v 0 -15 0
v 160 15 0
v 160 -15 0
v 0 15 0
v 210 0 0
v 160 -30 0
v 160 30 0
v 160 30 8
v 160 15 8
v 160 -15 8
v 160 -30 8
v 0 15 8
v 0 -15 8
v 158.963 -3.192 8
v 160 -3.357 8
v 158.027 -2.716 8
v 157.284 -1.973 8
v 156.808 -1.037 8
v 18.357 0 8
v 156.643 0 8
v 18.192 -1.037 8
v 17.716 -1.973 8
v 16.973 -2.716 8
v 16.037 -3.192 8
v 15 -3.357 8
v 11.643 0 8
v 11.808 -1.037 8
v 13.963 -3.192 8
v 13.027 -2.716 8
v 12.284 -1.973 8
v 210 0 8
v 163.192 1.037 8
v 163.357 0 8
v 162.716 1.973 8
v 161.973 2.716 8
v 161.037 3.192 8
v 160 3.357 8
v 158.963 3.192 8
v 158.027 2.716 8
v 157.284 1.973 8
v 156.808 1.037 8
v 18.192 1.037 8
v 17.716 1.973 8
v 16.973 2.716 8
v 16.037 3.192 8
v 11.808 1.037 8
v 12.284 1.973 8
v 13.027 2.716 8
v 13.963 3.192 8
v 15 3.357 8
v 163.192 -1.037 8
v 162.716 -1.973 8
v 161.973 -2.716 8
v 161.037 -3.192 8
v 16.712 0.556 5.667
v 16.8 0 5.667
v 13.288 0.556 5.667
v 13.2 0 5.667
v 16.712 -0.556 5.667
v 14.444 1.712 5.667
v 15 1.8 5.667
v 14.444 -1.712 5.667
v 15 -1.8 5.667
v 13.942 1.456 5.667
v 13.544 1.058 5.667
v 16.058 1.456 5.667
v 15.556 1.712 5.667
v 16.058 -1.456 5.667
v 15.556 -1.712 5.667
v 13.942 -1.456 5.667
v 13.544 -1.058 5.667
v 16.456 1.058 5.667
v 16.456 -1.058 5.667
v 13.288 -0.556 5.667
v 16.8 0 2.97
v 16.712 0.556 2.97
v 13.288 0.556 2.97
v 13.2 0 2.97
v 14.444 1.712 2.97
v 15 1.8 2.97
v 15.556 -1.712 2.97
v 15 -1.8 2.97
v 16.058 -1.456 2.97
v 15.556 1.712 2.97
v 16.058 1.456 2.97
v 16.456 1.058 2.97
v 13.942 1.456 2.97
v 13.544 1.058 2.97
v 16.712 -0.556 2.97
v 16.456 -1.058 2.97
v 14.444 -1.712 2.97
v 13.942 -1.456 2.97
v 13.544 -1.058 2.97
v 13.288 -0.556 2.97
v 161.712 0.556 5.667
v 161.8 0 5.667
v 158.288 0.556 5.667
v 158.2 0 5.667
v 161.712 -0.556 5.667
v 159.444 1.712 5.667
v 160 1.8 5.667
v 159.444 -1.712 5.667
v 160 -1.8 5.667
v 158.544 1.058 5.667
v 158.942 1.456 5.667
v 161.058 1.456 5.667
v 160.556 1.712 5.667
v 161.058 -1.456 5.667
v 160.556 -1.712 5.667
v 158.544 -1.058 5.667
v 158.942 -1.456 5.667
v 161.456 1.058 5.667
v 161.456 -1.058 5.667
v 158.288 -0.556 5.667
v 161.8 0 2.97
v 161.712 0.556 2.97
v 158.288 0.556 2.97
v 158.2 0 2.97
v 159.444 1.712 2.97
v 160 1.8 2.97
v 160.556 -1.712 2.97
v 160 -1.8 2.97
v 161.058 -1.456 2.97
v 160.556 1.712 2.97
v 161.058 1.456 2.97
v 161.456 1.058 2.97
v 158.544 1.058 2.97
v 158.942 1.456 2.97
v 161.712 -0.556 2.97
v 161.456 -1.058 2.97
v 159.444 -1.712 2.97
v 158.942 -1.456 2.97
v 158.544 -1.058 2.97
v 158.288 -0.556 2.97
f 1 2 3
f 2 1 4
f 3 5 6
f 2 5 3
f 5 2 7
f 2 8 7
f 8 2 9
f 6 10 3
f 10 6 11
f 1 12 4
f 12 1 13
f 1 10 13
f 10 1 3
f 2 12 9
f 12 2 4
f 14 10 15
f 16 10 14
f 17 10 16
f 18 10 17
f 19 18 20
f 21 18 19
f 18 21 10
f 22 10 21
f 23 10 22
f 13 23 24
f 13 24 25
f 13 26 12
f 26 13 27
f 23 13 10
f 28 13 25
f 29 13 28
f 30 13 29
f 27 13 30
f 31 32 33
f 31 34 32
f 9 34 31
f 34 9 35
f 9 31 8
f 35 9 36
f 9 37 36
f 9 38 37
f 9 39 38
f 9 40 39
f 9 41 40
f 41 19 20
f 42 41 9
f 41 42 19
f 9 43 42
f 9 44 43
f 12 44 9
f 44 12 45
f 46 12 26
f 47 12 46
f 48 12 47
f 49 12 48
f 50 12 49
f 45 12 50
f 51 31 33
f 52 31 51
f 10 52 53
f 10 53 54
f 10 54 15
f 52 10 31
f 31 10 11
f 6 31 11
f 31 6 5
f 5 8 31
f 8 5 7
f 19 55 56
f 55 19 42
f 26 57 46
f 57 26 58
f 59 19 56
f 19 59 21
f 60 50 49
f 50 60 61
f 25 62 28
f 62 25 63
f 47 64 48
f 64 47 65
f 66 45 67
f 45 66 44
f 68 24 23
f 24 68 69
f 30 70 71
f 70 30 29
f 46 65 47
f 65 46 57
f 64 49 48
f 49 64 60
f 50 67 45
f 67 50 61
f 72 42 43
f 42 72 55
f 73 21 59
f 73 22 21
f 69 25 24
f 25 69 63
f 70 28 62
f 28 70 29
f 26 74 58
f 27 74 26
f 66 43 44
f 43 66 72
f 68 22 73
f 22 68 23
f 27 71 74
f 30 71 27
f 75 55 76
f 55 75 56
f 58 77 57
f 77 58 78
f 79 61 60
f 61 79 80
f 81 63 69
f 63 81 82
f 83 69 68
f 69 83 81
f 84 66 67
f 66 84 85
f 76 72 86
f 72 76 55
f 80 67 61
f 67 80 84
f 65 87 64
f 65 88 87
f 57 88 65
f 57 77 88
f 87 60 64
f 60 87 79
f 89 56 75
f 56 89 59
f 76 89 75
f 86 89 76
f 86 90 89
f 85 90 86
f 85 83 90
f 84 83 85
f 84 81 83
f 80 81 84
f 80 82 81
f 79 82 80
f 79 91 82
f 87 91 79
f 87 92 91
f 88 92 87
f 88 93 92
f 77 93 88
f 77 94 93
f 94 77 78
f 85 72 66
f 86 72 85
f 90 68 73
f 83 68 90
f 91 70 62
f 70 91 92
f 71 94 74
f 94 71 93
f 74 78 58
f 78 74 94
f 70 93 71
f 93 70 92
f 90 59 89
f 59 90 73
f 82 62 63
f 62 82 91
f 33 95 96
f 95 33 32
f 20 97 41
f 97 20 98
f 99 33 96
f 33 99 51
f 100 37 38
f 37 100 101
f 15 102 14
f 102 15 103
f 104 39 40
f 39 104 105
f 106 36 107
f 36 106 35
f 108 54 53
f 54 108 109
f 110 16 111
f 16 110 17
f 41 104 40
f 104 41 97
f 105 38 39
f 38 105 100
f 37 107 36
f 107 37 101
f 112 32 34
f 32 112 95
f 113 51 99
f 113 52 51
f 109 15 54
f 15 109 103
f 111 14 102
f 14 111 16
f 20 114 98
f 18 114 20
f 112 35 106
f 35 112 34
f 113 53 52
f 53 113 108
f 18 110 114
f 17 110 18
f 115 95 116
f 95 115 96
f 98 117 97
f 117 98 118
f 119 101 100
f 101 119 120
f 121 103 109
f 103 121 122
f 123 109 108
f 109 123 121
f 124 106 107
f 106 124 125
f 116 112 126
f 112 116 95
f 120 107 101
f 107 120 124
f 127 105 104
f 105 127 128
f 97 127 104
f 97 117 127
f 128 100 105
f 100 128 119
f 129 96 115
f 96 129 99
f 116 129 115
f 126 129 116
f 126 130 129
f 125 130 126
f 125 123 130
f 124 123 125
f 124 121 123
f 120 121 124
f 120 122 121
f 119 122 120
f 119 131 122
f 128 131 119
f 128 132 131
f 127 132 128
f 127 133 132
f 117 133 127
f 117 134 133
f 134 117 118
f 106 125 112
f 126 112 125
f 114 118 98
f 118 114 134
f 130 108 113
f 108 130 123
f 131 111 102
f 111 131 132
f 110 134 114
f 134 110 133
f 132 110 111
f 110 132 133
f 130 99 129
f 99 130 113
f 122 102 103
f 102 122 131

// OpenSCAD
// Street Numbers for 3D printing
// Charles Tilford, 2019
// License: CC BY-NC-SA 4.0
//   https://creativecommons.org/licenses/by-nc-sa/4.0/

// Units are in mm, except for height of letter

// Width and length of arrow body:
bodyWid=30;
bodyLen=160;
// Width and length of arrow head:
arrWid=30;
arrHead=50;
// How thick/deep should object be (mm)?
depth=8;

// Character coordinates just center the letter
charX=0;    // Object X coord
charY=0;    // Object Y coord
topScrew=30;  // Top screw Y coord
botScrew=-28; // Bottom screw Y coord
height=8;     // Thickness of object
// Screw dimensions. Default presumes
// #6 sheet metal screw
screwWid=3.6; // Width of screw shaft
screwTop=6.78;// Width of screw head
screwCon=5.08;// Height of head 'cone'

// Thin floor below holes. My printer was
// struggling to have the hole 'border' stick
// to the stage. Just drill/screw thru it.
holeFloor=0.1; 

// ==========================================
// ===== All values below are auto-calculated
// ==========================================

// Where do we start drawing screw head cone?
oS=depth - (screwCon-.05);

difference() {
  // We use difference() to punch out the screw holes
  // in the shape
    
  // The object itself, 8mm thick
  union() {
    // Arrow bar
    translate([0,-bodyWid/2,0])
      linear_extrude(height=depth, scale=1)
      square([bodyLen,bodyWid], 0);
    // Arrow head
    linear_extrude(height=depth, scale=1)
      polygon([[bodyLen,arrWid],
               [bodyLen+arrHead,0],
               [bodyLen,0-arrWid]]);
  }
  
  // Body screw hole
  translate([bodyWid/2,0,oS]) color("red")
    cylinder(h=screwCon, d2=screwTop,
             d1=0, $fn=20);
   translate([bodyWid/2,0,oS])
    cylinder(h=20, d=screwWid, $fn=20);
  
  // Head screw hole
  translate([bodyLen,0,oS]) color("red")
    cylinder(h=screwCon, d2=screwTop,
             d1=0, $fn=20);
   translate([bodyLen,0,oS])
    cylinder(h=20, d=screwWid, $fn=20);
}

// Colors are just to aid visualization of
// void spaces. $fn is "featuer number", ie how
// many polygons are devoted to object. The values
// above should be near your printing limit anyway.

// Developed in OpenSCAD
//    https://www.openscad.org/
